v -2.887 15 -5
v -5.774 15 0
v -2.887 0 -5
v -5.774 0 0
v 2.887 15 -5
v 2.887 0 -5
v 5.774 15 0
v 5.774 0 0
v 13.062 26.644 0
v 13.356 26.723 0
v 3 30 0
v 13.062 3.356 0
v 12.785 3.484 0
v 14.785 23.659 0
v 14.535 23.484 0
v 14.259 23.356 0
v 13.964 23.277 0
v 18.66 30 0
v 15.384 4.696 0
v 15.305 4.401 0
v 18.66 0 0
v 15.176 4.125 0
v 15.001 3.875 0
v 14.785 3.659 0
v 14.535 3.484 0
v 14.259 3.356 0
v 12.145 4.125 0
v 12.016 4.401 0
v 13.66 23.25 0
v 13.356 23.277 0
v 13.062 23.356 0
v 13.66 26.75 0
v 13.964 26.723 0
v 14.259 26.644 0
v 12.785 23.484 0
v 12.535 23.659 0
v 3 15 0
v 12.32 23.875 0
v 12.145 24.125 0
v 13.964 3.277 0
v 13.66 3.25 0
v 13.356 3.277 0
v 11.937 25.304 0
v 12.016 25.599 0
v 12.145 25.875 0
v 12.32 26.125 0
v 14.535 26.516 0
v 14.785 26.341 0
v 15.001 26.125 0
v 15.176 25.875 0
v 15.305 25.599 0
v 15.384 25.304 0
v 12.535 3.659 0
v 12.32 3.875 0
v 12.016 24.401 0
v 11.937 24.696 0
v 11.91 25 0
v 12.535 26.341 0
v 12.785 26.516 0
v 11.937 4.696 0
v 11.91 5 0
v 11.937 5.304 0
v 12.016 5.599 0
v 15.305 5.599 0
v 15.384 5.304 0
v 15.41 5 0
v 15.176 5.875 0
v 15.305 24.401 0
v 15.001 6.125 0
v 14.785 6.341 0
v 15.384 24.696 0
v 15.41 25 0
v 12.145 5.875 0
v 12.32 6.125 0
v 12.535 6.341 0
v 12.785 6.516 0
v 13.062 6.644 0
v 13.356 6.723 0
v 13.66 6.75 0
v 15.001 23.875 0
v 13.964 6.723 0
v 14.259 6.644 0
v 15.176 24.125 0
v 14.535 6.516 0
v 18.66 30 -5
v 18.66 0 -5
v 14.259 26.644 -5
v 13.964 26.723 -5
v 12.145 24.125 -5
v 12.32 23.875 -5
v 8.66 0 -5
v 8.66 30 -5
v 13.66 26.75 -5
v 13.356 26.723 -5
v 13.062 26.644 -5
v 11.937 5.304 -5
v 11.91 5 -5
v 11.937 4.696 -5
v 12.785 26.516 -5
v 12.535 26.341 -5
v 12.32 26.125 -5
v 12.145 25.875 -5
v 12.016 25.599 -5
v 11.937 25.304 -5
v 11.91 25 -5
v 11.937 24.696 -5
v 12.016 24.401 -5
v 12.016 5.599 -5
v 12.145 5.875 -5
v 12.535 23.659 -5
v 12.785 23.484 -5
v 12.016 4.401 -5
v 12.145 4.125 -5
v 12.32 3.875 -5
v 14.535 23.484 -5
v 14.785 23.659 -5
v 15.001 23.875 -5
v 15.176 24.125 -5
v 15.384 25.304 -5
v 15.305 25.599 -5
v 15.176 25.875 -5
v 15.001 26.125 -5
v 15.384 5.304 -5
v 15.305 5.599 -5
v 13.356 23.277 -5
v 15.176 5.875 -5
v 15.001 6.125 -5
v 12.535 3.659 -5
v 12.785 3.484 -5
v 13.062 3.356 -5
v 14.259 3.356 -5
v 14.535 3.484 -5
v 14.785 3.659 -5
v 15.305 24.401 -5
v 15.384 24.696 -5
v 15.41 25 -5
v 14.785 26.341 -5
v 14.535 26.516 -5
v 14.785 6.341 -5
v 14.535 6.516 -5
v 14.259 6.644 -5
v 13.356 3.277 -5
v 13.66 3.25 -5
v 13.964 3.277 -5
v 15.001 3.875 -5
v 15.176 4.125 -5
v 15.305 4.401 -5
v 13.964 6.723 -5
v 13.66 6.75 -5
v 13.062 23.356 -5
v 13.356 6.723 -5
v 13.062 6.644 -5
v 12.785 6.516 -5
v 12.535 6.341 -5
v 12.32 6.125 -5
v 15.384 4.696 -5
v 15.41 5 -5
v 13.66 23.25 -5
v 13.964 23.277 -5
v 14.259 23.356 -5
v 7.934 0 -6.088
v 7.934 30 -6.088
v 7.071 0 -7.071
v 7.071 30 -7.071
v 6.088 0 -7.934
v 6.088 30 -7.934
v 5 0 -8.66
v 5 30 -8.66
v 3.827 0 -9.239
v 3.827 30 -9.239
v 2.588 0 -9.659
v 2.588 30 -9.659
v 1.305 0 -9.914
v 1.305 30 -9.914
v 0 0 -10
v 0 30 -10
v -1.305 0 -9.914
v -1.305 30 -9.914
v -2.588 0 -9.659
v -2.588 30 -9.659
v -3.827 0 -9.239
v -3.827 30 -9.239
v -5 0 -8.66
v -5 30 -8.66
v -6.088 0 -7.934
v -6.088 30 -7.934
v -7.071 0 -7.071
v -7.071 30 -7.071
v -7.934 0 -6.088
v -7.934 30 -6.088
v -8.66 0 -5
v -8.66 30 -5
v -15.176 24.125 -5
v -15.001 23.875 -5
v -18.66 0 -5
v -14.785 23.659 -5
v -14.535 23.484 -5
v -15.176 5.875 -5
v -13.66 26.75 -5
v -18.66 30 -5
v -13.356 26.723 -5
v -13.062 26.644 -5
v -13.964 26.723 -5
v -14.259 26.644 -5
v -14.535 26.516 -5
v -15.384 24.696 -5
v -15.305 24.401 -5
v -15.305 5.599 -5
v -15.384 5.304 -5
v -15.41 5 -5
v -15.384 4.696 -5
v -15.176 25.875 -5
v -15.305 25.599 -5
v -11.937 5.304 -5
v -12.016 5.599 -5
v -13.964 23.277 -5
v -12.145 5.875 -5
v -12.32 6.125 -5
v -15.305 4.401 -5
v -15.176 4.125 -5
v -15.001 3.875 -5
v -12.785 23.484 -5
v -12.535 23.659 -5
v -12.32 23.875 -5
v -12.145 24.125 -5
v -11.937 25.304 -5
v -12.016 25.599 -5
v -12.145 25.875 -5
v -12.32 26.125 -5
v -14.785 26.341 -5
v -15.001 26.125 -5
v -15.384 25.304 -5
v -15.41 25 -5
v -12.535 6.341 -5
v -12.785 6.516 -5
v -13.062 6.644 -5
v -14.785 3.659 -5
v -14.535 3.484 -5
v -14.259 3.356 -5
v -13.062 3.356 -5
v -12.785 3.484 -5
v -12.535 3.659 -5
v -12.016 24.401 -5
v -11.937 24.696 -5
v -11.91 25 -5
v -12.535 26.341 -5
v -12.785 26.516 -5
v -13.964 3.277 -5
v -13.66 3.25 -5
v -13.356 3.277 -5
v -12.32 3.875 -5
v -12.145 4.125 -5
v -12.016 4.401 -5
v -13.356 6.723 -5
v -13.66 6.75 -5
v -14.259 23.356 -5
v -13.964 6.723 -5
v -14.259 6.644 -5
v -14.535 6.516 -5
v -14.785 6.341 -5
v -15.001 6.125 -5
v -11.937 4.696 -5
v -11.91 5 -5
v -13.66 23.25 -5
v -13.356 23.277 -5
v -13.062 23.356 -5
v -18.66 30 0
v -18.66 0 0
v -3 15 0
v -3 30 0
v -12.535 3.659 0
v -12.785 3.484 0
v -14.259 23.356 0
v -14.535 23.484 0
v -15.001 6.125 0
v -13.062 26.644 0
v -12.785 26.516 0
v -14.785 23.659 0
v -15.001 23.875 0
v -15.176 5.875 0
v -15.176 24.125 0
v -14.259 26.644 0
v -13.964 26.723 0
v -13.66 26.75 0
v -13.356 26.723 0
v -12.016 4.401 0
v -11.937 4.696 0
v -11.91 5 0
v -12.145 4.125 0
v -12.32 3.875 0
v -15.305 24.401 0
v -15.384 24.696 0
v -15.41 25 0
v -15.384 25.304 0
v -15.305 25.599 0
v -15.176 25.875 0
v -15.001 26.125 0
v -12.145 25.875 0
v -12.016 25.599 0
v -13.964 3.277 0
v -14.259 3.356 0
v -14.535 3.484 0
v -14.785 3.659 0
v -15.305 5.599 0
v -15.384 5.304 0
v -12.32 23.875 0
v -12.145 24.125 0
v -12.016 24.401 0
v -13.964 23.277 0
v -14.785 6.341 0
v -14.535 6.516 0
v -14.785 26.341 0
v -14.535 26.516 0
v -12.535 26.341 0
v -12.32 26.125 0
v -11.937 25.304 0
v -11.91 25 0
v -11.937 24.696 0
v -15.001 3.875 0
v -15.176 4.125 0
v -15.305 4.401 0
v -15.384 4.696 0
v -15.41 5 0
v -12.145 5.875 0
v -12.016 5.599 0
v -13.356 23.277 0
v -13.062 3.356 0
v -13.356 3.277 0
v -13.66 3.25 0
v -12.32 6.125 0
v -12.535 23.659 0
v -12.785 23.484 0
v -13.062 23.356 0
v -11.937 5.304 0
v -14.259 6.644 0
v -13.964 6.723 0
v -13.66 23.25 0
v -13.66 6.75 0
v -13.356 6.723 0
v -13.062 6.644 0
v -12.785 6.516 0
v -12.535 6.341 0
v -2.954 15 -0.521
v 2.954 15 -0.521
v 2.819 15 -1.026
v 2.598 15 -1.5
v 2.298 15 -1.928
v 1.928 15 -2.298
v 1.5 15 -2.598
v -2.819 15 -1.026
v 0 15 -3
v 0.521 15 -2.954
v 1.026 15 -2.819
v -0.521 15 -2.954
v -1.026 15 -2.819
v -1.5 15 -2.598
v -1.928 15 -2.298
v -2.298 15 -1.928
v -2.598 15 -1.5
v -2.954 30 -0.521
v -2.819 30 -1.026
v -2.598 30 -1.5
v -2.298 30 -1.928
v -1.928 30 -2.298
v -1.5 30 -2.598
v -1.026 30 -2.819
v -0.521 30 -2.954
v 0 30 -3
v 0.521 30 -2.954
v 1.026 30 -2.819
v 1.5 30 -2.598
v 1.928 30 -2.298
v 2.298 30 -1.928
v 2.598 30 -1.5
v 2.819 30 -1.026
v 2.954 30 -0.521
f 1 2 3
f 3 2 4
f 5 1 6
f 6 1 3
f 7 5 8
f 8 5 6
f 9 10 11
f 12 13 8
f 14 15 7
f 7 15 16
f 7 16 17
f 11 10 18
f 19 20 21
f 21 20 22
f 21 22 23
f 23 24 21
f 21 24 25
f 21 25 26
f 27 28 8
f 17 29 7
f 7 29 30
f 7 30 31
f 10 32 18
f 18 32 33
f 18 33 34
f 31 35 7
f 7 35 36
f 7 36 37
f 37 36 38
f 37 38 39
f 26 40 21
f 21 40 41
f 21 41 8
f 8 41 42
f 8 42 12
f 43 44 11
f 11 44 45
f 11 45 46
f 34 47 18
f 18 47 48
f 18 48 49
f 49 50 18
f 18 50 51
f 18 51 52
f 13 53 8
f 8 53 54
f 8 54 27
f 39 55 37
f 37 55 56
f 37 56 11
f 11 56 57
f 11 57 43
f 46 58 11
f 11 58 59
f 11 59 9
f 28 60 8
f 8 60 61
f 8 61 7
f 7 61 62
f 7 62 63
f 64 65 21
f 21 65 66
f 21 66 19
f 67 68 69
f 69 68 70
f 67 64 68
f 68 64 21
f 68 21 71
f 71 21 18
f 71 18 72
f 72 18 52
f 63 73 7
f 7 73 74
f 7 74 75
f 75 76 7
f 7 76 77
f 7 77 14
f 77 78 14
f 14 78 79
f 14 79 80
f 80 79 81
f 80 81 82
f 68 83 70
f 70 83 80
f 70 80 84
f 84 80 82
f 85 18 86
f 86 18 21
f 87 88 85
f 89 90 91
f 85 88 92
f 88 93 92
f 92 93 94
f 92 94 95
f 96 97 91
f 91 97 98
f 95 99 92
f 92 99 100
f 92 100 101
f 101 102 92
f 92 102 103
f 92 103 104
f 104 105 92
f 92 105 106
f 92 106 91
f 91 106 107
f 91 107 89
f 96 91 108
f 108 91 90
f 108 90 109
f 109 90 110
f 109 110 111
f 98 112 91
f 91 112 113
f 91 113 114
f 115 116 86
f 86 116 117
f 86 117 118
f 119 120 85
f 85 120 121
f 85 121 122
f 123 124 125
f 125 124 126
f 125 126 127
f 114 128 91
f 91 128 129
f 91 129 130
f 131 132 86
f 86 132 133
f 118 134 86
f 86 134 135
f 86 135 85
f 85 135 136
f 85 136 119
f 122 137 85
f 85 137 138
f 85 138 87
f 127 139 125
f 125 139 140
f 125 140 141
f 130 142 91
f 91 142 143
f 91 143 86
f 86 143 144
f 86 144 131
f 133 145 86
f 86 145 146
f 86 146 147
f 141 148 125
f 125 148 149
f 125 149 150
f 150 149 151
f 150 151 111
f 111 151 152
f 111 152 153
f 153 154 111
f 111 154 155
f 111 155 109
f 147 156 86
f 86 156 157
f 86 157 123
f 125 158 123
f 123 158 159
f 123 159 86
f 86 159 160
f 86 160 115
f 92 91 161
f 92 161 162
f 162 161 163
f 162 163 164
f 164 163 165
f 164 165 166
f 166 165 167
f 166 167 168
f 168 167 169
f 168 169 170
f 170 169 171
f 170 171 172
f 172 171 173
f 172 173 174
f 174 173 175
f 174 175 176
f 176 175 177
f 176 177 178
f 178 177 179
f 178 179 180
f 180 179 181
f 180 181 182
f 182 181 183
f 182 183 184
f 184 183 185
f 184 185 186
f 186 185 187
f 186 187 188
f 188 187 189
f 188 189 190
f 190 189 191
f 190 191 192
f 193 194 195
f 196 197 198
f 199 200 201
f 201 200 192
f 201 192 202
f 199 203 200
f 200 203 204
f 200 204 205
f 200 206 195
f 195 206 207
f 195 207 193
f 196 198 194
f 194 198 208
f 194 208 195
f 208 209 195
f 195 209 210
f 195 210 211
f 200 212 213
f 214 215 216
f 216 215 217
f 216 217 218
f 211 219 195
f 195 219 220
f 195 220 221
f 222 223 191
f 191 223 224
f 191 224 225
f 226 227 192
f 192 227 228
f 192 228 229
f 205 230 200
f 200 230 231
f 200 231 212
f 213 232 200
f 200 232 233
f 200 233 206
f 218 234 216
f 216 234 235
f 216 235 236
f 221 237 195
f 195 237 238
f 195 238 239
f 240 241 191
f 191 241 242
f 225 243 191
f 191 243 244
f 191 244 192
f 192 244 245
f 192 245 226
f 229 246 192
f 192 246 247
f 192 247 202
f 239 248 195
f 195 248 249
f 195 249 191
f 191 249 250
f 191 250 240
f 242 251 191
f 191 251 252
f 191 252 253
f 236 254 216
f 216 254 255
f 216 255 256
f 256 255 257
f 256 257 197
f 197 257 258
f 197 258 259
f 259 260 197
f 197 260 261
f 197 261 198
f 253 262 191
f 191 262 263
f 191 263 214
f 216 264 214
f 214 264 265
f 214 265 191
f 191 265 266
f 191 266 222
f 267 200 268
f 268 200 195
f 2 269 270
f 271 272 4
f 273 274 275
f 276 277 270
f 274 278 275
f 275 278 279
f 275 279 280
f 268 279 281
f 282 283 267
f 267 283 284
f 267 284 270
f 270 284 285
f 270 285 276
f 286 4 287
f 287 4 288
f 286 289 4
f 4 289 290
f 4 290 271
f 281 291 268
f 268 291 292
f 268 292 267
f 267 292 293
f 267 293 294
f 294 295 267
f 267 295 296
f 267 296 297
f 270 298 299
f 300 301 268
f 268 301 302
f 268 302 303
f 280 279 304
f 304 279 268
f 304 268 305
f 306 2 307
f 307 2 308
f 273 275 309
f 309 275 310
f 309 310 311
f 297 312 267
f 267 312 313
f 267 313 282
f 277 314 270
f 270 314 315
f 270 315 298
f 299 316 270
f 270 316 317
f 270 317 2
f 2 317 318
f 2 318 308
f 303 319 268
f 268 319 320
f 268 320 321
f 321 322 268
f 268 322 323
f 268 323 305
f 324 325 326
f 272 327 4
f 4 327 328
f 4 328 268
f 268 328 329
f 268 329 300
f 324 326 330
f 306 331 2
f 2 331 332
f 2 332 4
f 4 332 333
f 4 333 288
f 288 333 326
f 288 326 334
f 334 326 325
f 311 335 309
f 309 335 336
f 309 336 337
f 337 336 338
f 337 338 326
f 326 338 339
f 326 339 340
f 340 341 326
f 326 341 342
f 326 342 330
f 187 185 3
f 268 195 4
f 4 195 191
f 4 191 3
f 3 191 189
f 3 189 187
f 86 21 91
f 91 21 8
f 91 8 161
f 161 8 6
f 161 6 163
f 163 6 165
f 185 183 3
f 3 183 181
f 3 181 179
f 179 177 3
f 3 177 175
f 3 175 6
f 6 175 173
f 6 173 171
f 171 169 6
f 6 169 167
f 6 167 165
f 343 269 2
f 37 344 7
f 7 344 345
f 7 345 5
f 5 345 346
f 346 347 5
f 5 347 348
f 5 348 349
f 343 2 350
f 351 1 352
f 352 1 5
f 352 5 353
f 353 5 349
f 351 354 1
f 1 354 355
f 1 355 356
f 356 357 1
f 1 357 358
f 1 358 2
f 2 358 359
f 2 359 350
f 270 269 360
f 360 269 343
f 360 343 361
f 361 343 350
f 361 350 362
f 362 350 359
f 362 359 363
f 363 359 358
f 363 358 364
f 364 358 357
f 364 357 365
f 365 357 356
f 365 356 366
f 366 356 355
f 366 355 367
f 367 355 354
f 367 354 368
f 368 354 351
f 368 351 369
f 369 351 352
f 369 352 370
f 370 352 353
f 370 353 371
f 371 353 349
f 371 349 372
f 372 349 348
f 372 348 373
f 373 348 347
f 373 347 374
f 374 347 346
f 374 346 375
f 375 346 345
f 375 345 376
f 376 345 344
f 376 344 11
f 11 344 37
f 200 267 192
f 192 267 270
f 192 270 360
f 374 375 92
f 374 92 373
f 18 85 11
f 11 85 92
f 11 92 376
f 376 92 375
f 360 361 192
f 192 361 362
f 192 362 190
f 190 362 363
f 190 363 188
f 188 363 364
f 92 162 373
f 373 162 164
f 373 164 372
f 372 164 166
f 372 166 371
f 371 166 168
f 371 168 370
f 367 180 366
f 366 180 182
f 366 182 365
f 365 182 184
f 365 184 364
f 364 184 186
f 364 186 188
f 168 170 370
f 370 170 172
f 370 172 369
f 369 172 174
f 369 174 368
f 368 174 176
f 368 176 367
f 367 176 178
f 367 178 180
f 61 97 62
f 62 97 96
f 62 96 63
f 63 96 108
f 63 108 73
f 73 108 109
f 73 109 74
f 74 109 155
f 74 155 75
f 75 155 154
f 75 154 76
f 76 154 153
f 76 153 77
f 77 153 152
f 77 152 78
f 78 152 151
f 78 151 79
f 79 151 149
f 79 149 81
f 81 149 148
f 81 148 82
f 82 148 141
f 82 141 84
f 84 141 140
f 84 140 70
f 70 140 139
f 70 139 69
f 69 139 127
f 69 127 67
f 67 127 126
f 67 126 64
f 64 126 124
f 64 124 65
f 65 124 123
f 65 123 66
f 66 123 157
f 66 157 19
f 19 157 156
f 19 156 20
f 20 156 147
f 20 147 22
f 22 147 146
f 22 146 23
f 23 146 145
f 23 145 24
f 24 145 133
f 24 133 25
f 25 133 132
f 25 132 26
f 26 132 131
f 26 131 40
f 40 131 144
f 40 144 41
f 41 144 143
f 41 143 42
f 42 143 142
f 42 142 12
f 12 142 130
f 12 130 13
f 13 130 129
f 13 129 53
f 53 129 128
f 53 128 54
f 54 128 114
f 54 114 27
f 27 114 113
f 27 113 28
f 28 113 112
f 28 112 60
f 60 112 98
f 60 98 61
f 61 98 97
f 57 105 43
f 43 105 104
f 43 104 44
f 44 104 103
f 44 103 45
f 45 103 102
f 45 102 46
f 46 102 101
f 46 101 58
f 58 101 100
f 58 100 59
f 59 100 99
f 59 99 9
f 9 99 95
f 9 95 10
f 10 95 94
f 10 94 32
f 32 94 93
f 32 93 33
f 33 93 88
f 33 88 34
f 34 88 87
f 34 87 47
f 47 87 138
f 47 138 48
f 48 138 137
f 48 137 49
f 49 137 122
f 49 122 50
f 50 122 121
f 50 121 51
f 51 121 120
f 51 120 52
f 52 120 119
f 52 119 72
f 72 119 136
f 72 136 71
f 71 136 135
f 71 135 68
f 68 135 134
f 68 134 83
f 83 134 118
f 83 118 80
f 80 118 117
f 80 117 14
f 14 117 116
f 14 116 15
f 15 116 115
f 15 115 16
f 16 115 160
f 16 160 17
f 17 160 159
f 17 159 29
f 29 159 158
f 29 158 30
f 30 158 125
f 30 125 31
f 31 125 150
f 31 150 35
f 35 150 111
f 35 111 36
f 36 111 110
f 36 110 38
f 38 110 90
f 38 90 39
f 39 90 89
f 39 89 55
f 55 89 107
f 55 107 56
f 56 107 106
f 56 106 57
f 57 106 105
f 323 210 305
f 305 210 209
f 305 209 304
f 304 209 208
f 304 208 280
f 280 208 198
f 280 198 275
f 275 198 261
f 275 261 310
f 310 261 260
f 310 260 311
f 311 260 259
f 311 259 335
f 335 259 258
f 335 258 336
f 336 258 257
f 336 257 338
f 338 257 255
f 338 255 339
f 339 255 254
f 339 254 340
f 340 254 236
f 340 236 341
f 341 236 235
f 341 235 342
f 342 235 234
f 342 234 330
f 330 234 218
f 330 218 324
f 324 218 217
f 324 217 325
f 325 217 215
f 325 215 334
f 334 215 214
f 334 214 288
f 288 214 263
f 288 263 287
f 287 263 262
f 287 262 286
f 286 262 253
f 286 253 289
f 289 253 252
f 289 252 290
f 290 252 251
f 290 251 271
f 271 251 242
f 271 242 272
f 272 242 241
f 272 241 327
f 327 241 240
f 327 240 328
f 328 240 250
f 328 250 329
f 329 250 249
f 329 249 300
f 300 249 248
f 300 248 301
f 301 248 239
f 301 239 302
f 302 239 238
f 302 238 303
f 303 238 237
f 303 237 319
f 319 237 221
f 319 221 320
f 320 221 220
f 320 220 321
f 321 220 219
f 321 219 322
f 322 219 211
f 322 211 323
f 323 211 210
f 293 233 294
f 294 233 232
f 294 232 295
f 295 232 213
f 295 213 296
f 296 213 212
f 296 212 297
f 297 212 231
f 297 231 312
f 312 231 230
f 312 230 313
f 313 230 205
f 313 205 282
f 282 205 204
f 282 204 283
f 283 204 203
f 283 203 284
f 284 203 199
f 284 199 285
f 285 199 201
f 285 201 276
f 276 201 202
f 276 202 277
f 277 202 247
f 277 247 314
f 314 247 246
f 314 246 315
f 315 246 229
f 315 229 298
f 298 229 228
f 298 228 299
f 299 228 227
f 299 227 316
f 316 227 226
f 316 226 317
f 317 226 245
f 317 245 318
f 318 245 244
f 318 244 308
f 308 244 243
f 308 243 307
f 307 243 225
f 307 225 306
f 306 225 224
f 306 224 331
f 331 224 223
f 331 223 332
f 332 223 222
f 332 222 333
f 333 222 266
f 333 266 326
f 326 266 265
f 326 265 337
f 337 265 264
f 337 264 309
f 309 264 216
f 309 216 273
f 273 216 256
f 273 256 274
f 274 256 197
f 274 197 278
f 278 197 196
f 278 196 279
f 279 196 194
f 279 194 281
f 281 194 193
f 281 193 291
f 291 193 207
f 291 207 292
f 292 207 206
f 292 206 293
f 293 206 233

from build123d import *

# Parameters (mm, degrees)
EXTRUDE_1_DEPTH     = 15
EXTRUDE_2_DEPTH     = 15
SKETCH_3_R          = 1.75
CUT_EXTRUDE_1_DEPTH = 6


with BuildPart() as part:
    # Эскиз1 → Бобышка-Вытянуть1 (new body)
    with BuildSketch(Plane(origin=(0, 0, 0), x_dir=(1, 0, 0), z_dir=(0, 1, 0))):
        with BuildLine():
            Line((-5.773502692, 0), (-18.660254038, 0))
            Line((-18.660254038, 0), (-18.660254038, 5))
            Line((-18.660254038, 5), (-8.660254038, 5))
            ThreePointArc((-8.660254038, 5), (0, 10), (8.660254038, 5))
            Line((8.660254038, 5), (18.660254038, 5))
            Line((18.660254038, 5), (18.660254038, 0))
            Line((18.660254038, 0), (5.773502692, 0))
            Line((5.773502692, 0), (2.886751346, 5))
            Line((2.886751346, 5), (-2.886751346, 5))
            Line((-2.886751346, 5), (-5.773502692, 0))
        make_face()
    extrude(amount=EXTRUDE_1_DEPTH)

    # Эскиз2 → Бобышка-Вытянуть2 (add)
    with BuildSketch(Plane(origin=(0, 15, 0), x_dir=(1, 0, 0), z_dir=(0, 1, 0))):
        with BuildLine():
            Line((-18.660254038, 5), (-8.660254038, 5))
            ThreePointArc((-8.660254038, 5), (0, 10), (8.660254038, 5))
            Line((8.660254038, 5), (18.660254038, 5))
            Line((18.660254038, 5), (18.660254038, 0))
            Line((18.660254038, 0), (10, 0))
            Line((10, 0), (3, 0))
            ThreePointArc((3, 0), (0, 3), (-3, 0))
            Line((-3, 0), (-18.660254038, 0))
            Line((-18.660254038, 0), (-18.660254038, 5))
        make_face()
    extrude(amount=EXTRUDE_2_DEPTH)

    # Эскиз3 → Вырез-Вытянуть1 (cut, through all)
    with BuildSketch(Plane(origin=(0, 0, -5), x_dir=(-1, 0, 0), z_dir=(0, 0, -1))):
        with Locations((-13.660254038, 5)):
            Circle(SKETCH_3_R)
        with Locations((-13.660254038, 25)):
            Circle(SKETCH_3_R)
        with Locations((13.660254038, 5)):
            Circle(SKETCH_3_R)
        with Locations((13.660254038, 25)):
            Circle(SKETCH_3_R)
    extrude(amount=-CUT_EXTRUDE_1_DEPTH, mode=Mode.SUBTRACT)


solid = part.part
